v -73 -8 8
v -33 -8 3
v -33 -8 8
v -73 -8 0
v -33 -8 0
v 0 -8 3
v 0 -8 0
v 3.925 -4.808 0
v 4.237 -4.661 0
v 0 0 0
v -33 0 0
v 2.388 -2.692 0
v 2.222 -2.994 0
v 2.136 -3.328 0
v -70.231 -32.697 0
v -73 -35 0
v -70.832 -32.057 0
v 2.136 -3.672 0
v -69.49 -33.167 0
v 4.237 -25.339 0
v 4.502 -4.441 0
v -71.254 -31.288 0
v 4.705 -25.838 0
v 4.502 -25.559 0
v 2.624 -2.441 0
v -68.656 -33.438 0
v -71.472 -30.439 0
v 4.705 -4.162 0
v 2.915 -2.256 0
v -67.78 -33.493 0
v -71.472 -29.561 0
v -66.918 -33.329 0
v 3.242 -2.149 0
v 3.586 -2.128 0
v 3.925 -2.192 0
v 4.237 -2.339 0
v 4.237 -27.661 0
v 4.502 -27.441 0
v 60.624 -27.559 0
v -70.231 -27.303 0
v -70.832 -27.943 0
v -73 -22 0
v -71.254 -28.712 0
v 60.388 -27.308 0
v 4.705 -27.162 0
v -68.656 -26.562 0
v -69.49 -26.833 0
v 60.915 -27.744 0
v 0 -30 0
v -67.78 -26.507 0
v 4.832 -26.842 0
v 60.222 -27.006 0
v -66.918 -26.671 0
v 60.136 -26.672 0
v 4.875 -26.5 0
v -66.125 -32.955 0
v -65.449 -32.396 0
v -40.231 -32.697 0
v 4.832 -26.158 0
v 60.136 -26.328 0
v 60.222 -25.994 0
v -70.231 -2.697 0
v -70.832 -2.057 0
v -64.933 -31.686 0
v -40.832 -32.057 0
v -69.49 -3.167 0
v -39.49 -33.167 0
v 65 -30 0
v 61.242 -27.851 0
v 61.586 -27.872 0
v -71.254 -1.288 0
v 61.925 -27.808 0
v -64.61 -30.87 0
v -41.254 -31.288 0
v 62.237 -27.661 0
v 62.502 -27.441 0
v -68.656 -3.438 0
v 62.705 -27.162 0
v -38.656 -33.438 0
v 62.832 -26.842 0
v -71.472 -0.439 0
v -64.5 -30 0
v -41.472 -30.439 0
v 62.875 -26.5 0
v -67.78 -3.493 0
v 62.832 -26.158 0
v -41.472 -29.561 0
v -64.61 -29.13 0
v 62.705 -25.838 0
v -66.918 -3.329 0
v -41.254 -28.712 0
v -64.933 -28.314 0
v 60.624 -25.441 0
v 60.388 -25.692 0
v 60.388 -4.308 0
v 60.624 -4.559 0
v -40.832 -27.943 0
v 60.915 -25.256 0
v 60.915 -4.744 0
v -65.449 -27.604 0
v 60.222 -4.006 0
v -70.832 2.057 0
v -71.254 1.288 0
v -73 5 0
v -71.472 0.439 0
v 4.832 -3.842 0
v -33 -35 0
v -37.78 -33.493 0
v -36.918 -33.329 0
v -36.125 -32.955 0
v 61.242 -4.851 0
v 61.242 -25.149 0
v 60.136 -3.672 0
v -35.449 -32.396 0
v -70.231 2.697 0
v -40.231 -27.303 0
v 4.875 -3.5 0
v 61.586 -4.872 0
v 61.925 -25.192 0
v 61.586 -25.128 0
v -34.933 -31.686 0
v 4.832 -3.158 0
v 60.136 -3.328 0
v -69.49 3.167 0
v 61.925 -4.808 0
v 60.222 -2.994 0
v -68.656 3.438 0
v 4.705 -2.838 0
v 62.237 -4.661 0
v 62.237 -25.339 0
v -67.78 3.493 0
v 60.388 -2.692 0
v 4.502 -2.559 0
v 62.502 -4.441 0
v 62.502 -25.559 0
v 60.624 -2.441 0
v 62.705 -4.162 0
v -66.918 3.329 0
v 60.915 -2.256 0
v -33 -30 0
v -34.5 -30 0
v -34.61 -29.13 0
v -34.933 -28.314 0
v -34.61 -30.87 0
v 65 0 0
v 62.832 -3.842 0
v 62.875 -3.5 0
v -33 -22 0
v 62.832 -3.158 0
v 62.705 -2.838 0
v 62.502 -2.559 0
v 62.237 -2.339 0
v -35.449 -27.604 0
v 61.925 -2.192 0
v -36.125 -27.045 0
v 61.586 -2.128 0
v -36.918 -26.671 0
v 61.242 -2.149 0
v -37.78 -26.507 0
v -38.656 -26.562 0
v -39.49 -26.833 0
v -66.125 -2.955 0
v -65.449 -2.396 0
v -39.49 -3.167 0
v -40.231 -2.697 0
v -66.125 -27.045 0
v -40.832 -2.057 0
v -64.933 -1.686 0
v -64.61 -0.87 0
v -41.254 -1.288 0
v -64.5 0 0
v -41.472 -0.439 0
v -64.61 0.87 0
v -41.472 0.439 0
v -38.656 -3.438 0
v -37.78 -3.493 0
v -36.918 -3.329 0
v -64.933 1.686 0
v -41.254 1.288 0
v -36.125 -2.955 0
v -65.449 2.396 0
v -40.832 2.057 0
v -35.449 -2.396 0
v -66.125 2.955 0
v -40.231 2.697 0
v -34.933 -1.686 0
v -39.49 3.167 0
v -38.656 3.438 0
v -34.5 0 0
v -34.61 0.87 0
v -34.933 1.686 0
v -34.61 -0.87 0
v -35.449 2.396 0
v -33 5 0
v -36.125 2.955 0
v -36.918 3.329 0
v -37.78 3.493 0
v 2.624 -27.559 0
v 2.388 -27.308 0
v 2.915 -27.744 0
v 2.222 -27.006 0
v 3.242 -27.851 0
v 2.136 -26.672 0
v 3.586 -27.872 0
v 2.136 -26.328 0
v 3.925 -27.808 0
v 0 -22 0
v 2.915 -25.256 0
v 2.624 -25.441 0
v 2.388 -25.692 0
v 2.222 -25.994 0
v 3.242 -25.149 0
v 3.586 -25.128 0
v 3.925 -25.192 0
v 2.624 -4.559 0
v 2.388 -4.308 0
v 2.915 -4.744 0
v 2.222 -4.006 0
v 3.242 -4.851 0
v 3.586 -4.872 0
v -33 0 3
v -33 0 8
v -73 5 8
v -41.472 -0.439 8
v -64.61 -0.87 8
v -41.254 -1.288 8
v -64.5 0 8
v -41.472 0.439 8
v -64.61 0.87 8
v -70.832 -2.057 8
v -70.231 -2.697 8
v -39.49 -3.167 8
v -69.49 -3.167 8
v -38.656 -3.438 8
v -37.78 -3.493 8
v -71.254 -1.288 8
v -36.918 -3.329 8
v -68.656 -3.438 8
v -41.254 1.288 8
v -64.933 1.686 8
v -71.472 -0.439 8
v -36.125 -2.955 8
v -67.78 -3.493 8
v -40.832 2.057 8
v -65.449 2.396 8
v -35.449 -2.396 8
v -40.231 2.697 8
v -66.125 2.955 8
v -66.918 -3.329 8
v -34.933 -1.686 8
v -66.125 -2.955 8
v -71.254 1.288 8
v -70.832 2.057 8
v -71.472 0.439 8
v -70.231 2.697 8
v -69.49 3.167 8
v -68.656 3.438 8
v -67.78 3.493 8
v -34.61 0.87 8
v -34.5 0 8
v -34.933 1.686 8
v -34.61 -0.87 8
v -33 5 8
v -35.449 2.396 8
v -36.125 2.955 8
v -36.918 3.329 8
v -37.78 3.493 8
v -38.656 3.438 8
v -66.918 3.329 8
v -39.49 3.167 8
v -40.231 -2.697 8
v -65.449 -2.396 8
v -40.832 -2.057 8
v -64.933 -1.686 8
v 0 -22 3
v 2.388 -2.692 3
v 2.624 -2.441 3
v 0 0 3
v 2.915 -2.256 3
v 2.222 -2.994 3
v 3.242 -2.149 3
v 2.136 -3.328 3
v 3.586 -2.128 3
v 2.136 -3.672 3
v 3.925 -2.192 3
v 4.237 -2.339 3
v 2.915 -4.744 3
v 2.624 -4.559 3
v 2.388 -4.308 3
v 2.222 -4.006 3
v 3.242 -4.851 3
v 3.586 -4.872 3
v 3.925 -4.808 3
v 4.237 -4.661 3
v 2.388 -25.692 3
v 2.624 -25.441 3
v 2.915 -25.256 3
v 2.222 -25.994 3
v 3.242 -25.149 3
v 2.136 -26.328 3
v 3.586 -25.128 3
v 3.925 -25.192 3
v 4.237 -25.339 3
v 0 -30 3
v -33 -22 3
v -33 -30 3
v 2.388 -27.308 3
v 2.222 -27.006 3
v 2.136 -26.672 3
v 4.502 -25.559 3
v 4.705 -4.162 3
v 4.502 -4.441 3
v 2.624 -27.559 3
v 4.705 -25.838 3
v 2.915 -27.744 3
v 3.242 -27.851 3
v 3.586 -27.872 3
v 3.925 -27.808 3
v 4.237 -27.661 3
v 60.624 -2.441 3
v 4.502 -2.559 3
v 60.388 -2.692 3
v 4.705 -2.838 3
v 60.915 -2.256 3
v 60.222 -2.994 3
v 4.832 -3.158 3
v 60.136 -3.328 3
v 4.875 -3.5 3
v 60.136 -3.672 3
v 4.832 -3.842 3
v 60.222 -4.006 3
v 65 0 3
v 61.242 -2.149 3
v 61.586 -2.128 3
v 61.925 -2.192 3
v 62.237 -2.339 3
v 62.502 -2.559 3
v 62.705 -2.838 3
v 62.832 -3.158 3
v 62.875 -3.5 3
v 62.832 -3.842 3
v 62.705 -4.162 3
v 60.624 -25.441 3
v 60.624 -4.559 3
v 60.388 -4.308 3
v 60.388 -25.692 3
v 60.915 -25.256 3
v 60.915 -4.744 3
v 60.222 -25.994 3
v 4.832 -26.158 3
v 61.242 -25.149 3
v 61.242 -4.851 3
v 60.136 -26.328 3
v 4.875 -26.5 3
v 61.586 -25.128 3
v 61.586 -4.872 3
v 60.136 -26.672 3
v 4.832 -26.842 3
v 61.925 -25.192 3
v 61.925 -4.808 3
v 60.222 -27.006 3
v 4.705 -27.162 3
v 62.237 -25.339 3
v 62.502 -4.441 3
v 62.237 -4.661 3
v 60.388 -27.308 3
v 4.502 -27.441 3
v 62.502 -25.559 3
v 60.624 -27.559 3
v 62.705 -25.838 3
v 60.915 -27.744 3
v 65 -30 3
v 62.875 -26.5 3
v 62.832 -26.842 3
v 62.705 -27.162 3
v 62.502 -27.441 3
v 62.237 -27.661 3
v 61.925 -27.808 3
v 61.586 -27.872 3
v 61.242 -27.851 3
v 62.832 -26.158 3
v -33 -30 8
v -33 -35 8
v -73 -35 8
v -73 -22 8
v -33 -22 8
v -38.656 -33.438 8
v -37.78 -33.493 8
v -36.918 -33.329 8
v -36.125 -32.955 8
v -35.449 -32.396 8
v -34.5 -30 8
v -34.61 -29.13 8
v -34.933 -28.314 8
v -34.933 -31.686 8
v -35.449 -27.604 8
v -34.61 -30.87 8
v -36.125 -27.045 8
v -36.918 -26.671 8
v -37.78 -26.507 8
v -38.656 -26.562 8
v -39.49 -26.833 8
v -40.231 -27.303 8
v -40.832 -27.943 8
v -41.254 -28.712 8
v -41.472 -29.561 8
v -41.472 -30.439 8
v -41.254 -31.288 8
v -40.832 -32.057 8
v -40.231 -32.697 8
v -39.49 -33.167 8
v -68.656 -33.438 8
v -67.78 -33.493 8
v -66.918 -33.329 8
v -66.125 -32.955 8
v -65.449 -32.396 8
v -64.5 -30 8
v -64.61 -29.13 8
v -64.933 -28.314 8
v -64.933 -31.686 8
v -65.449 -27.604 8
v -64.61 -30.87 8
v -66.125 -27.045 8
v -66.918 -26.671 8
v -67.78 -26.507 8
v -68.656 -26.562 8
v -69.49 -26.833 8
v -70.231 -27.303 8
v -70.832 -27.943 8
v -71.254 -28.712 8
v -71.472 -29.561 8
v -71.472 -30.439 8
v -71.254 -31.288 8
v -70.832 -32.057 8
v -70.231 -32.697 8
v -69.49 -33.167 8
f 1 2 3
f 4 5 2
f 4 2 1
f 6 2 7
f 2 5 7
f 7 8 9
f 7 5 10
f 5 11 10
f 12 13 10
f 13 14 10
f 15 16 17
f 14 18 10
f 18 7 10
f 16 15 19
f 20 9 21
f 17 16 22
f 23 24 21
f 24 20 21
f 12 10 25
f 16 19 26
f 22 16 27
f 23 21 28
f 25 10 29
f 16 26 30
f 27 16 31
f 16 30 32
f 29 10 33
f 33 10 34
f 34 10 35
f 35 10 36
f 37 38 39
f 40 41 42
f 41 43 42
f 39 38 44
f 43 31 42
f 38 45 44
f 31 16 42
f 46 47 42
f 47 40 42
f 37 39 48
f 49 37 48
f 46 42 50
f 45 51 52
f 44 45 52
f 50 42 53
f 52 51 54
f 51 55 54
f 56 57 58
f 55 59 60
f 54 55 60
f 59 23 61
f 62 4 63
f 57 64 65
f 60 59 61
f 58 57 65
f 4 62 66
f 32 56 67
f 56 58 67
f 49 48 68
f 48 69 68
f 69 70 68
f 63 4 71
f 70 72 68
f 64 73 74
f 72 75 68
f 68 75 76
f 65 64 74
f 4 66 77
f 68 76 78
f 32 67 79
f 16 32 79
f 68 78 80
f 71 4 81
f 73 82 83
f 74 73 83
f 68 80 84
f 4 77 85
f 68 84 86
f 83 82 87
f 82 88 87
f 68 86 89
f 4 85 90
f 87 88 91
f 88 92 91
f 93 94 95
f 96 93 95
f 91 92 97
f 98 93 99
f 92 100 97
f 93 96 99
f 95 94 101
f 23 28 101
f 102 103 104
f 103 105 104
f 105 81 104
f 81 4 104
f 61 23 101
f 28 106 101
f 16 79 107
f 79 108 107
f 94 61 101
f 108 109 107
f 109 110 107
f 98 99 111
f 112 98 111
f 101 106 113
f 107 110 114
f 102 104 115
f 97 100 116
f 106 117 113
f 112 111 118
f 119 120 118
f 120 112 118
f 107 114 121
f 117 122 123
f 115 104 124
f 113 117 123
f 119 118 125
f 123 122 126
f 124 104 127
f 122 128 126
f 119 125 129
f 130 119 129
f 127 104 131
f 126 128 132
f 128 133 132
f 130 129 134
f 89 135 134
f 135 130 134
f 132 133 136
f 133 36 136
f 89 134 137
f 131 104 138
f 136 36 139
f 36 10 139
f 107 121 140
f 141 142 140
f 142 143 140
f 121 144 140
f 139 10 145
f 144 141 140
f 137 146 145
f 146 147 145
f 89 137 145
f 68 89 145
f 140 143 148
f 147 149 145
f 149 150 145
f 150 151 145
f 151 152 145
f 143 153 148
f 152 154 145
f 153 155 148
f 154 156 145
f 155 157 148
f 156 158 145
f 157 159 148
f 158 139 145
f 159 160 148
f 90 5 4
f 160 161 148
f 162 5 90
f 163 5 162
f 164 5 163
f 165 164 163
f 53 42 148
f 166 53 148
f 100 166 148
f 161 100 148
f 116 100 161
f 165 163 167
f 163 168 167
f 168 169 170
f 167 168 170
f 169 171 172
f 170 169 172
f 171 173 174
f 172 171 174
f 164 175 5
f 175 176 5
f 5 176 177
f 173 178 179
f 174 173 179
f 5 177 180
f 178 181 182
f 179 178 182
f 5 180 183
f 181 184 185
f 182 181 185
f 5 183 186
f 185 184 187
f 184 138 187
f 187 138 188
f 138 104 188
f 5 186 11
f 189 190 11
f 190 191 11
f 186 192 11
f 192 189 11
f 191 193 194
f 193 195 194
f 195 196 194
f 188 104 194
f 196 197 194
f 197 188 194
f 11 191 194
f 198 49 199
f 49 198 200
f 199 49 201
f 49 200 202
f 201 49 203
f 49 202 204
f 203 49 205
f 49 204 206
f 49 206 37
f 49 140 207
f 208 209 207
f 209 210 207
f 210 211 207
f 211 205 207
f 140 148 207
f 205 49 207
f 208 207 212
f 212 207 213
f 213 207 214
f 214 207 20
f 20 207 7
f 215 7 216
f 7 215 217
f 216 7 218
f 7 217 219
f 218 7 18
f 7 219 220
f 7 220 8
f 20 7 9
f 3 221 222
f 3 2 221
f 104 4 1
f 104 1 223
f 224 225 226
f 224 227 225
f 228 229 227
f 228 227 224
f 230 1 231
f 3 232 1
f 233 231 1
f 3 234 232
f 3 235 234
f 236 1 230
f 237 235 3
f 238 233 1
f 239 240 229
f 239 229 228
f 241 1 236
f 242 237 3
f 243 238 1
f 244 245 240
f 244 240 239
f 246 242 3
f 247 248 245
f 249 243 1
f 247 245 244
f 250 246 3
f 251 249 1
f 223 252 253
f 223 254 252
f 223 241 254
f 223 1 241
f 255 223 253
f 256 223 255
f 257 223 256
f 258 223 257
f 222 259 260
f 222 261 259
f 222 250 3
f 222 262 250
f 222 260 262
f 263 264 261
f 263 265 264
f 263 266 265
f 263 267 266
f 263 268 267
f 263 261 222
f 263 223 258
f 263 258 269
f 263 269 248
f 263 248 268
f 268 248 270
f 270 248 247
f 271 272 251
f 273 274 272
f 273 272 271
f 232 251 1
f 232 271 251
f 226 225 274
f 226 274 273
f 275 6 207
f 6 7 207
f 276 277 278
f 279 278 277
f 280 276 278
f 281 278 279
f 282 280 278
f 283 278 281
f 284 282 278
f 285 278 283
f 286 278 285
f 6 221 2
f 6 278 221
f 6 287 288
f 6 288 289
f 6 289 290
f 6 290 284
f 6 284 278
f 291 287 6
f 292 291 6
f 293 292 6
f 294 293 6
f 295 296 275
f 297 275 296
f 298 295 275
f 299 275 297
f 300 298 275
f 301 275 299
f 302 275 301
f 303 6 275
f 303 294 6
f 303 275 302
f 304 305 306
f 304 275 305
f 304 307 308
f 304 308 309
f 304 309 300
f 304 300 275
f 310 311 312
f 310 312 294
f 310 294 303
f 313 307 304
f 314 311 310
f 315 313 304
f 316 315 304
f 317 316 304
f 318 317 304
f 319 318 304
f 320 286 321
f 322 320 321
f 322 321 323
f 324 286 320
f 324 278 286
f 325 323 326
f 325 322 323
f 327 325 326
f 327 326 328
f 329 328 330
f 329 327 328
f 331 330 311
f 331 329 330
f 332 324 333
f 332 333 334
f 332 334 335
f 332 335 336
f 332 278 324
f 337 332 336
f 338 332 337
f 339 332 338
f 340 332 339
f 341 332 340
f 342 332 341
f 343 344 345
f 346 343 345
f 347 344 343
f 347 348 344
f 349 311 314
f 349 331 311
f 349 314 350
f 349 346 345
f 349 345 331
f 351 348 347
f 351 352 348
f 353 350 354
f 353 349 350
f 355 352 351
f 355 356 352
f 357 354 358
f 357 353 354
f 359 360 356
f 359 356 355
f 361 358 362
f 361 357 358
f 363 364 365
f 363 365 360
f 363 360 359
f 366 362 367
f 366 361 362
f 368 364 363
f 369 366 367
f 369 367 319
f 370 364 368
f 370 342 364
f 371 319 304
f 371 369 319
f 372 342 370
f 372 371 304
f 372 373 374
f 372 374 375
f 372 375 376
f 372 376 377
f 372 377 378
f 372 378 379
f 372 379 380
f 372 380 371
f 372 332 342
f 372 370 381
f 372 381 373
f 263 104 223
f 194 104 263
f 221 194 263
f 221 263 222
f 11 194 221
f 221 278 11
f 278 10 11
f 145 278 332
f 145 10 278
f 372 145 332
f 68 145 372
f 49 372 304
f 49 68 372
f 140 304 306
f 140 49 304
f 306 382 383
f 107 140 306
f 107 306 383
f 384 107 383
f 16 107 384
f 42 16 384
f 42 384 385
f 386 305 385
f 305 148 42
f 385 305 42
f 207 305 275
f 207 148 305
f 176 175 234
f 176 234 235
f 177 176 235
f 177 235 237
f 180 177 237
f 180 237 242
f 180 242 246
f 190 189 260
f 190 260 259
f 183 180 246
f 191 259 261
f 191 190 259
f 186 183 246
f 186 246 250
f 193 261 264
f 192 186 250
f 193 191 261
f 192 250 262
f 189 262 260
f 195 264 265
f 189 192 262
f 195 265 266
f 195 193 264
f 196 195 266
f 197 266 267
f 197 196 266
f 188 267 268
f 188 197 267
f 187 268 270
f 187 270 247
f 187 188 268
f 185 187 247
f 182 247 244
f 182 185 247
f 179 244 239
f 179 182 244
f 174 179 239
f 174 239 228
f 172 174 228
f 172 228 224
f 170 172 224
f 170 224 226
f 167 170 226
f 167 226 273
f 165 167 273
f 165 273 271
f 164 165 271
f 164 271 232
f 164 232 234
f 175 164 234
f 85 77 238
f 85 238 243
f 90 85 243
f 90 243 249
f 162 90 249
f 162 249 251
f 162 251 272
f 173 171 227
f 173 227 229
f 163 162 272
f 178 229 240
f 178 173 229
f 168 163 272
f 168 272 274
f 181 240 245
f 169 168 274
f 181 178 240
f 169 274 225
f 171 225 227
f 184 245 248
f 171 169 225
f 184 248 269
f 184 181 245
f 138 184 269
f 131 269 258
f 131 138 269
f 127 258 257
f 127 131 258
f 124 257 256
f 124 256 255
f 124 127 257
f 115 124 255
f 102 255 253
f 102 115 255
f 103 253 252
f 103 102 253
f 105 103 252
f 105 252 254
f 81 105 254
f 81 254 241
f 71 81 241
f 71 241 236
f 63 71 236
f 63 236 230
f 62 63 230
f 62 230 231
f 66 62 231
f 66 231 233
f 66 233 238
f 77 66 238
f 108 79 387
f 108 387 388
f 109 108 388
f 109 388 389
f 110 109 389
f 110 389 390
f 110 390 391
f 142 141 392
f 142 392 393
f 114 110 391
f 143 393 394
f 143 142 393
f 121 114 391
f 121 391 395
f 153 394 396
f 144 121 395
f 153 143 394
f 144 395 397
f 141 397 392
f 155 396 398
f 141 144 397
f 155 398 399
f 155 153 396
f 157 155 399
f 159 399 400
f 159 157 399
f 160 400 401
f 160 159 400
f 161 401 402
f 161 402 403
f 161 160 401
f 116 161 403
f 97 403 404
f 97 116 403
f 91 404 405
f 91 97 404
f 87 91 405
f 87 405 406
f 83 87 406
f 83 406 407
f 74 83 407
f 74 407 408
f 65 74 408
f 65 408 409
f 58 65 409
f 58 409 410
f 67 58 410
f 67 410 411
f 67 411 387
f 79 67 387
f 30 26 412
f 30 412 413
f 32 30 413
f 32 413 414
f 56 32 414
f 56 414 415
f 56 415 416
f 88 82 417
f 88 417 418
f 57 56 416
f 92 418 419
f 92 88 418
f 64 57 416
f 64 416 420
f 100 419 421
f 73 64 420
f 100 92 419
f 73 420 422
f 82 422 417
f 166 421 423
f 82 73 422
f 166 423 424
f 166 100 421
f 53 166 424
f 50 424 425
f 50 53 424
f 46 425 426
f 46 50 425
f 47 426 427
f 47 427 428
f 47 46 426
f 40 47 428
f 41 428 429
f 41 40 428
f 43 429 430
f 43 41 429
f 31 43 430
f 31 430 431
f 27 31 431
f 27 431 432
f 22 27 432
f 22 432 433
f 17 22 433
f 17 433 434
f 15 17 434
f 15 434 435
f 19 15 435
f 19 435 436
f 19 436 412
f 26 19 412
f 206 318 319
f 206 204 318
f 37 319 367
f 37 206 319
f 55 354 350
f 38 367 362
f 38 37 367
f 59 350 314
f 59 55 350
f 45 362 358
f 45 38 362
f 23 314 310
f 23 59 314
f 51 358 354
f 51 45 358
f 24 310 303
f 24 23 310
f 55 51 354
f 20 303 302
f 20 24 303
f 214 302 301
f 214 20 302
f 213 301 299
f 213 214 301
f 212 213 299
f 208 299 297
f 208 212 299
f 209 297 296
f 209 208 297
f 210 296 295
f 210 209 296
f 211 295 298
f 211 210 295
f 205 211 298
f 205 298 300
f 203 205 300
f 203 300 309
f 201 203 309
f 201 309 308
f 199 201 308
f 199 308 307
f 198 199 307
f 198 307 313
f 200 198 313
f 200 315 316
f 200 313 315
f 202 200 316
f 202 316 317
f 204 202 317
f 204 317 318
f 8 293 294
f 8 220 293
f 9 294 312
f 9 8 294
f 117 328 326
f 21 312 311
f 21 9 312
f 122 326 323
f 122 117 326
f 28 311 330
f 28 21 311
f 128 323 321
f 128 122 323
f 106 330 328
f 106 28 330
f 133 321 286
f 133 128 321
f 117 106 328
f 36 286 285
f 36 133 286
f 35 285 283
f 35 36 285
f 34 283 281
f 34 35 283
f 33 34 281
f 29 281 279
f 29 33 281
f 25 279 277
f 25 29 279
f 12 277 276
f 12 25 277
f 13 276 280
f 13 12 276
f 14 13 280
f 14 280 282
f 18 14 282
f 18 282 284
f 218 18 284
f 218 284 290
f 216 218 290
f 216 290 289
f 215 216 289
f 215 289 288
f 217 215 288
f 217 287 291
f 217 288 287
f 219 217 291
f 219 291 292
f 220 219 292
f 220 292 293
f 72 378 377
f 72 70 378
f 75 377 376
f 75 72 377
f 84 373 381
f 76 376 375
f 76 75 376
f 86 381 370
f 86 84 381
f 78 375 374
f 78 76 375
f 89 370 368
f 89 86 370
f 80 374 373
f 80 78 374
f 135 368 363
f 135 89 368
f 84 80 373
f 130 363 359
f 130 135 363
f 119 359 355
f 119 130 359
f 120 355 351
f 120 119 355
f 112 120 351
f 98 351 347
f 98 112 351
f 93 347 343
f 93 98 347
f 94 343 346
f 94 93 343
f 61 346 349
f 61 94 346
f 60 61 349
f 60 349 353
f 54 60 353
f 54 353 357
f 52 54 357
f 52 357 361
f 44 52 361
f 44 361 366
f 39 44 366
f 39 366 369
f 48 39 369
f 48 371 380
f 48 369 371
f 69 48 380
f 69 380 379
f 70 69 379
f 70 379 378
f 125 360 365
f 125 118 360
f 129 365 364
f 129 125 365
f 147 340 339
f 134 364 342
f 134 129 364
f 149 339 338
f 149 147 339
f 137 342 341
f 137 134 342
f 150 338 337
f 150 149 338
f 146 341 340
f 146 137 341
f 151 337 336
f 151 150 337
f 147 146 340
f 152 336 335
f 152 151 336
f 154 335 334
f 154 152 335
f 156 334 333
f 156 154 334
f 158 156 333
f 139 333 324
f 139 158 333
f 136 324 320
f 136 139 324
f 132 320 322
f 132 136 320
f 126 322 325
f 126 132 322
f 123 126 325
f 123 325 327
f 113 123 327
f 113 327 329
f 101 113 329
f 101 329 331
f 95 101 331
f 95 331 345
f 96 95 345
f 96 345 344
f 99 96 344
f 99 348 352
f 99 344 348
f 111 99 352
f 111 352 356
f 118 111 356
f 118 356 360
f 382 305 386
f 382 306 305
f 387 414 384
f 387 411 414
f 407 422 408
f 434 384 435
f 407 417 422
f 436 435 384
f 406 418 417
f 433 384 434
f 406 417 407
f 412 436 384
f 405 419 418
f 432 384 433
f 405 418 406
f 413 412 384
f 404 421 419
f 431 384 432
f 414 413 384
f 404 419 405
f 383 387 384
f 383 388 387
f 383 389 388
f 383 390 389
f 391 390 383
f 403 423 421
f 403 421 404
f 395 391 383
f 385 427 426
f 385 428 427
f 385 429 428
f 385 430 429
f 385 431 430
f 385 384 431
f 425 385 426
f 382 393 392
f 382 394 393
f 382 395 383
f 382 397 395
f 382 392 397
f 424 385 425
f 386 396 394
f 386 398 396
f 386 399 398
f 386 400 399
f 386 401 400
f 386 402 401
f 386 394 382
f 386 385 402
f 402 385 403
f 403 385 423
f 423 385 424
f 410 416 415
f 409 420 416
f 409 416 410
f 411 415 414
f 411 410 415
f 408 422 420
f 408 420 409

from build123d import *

# Parameters (mm, degrees)
SKETCH_R     = 1.375
SKETCH_R_2   = 3.5
PAD_DEPTH    = 8
SKETCH001_W  = 30
SKETCH001_H  = 5
POCKET_DEPTH = 98


with BuildPart() as part:
    # Sketch → Pad (new body)
    with BuildSketch(Plane.XY):
        Polygon((0, 0), (65, 0), (65, -30), (0, -30), (-33, -30), (-33, -35), (-73, -35), (-73, -22), (-33, -22), (0, -22), (0, -8), (-33, -8), (-73, -8), (-73, 5), (-33, 5), (-33, 0), align=None)
        with Locations((3.5, -3.5)):
            Circle(SKETCH_R, mode=Mode.SUBTRACT)
        with Locations((61.5, -3.5)):
            Circle(SKETCH_R, mode=Mode.SUBTRACT)
        with Locations((3.5, -26.5)):
            Circle(SKETCH_R, mode=Mode.SUBTRACT)
        with Locations((61.5, -26.5)):
            Circle(SKETCH_R, mode=Mode.SUBTRACT)
        with Locations((-68, 0)):
            Circle(SKETCH_R_2, mode=Mode.SUBTRACT)
        with Locations((-38, 0)):
            Circle(SKETCH_R_2, mode=Mode.SUBTRACT)
        with Locations((-68, -30)):
            Circle(SKETCH_R_2, mode=Mode.SUBTRACT)
        with Locations((-38, -30)):
            Circle(SKETCH_R_2, mode=Mode.SUBTRACT)
    extrude(amount=PAD_DEPTH)

    # Sketch001 → Pocket (cut)
    with BuildSketch(Plane.YZ.offset(65)):
        with Locations((-15, 5.5)):
            Rectangle(SKETCH001_W, SKETCH001_H)
    extrude(amount=-POCKET_DEPTH, mode=Mode.SUBTRACT)


solid = part.part
